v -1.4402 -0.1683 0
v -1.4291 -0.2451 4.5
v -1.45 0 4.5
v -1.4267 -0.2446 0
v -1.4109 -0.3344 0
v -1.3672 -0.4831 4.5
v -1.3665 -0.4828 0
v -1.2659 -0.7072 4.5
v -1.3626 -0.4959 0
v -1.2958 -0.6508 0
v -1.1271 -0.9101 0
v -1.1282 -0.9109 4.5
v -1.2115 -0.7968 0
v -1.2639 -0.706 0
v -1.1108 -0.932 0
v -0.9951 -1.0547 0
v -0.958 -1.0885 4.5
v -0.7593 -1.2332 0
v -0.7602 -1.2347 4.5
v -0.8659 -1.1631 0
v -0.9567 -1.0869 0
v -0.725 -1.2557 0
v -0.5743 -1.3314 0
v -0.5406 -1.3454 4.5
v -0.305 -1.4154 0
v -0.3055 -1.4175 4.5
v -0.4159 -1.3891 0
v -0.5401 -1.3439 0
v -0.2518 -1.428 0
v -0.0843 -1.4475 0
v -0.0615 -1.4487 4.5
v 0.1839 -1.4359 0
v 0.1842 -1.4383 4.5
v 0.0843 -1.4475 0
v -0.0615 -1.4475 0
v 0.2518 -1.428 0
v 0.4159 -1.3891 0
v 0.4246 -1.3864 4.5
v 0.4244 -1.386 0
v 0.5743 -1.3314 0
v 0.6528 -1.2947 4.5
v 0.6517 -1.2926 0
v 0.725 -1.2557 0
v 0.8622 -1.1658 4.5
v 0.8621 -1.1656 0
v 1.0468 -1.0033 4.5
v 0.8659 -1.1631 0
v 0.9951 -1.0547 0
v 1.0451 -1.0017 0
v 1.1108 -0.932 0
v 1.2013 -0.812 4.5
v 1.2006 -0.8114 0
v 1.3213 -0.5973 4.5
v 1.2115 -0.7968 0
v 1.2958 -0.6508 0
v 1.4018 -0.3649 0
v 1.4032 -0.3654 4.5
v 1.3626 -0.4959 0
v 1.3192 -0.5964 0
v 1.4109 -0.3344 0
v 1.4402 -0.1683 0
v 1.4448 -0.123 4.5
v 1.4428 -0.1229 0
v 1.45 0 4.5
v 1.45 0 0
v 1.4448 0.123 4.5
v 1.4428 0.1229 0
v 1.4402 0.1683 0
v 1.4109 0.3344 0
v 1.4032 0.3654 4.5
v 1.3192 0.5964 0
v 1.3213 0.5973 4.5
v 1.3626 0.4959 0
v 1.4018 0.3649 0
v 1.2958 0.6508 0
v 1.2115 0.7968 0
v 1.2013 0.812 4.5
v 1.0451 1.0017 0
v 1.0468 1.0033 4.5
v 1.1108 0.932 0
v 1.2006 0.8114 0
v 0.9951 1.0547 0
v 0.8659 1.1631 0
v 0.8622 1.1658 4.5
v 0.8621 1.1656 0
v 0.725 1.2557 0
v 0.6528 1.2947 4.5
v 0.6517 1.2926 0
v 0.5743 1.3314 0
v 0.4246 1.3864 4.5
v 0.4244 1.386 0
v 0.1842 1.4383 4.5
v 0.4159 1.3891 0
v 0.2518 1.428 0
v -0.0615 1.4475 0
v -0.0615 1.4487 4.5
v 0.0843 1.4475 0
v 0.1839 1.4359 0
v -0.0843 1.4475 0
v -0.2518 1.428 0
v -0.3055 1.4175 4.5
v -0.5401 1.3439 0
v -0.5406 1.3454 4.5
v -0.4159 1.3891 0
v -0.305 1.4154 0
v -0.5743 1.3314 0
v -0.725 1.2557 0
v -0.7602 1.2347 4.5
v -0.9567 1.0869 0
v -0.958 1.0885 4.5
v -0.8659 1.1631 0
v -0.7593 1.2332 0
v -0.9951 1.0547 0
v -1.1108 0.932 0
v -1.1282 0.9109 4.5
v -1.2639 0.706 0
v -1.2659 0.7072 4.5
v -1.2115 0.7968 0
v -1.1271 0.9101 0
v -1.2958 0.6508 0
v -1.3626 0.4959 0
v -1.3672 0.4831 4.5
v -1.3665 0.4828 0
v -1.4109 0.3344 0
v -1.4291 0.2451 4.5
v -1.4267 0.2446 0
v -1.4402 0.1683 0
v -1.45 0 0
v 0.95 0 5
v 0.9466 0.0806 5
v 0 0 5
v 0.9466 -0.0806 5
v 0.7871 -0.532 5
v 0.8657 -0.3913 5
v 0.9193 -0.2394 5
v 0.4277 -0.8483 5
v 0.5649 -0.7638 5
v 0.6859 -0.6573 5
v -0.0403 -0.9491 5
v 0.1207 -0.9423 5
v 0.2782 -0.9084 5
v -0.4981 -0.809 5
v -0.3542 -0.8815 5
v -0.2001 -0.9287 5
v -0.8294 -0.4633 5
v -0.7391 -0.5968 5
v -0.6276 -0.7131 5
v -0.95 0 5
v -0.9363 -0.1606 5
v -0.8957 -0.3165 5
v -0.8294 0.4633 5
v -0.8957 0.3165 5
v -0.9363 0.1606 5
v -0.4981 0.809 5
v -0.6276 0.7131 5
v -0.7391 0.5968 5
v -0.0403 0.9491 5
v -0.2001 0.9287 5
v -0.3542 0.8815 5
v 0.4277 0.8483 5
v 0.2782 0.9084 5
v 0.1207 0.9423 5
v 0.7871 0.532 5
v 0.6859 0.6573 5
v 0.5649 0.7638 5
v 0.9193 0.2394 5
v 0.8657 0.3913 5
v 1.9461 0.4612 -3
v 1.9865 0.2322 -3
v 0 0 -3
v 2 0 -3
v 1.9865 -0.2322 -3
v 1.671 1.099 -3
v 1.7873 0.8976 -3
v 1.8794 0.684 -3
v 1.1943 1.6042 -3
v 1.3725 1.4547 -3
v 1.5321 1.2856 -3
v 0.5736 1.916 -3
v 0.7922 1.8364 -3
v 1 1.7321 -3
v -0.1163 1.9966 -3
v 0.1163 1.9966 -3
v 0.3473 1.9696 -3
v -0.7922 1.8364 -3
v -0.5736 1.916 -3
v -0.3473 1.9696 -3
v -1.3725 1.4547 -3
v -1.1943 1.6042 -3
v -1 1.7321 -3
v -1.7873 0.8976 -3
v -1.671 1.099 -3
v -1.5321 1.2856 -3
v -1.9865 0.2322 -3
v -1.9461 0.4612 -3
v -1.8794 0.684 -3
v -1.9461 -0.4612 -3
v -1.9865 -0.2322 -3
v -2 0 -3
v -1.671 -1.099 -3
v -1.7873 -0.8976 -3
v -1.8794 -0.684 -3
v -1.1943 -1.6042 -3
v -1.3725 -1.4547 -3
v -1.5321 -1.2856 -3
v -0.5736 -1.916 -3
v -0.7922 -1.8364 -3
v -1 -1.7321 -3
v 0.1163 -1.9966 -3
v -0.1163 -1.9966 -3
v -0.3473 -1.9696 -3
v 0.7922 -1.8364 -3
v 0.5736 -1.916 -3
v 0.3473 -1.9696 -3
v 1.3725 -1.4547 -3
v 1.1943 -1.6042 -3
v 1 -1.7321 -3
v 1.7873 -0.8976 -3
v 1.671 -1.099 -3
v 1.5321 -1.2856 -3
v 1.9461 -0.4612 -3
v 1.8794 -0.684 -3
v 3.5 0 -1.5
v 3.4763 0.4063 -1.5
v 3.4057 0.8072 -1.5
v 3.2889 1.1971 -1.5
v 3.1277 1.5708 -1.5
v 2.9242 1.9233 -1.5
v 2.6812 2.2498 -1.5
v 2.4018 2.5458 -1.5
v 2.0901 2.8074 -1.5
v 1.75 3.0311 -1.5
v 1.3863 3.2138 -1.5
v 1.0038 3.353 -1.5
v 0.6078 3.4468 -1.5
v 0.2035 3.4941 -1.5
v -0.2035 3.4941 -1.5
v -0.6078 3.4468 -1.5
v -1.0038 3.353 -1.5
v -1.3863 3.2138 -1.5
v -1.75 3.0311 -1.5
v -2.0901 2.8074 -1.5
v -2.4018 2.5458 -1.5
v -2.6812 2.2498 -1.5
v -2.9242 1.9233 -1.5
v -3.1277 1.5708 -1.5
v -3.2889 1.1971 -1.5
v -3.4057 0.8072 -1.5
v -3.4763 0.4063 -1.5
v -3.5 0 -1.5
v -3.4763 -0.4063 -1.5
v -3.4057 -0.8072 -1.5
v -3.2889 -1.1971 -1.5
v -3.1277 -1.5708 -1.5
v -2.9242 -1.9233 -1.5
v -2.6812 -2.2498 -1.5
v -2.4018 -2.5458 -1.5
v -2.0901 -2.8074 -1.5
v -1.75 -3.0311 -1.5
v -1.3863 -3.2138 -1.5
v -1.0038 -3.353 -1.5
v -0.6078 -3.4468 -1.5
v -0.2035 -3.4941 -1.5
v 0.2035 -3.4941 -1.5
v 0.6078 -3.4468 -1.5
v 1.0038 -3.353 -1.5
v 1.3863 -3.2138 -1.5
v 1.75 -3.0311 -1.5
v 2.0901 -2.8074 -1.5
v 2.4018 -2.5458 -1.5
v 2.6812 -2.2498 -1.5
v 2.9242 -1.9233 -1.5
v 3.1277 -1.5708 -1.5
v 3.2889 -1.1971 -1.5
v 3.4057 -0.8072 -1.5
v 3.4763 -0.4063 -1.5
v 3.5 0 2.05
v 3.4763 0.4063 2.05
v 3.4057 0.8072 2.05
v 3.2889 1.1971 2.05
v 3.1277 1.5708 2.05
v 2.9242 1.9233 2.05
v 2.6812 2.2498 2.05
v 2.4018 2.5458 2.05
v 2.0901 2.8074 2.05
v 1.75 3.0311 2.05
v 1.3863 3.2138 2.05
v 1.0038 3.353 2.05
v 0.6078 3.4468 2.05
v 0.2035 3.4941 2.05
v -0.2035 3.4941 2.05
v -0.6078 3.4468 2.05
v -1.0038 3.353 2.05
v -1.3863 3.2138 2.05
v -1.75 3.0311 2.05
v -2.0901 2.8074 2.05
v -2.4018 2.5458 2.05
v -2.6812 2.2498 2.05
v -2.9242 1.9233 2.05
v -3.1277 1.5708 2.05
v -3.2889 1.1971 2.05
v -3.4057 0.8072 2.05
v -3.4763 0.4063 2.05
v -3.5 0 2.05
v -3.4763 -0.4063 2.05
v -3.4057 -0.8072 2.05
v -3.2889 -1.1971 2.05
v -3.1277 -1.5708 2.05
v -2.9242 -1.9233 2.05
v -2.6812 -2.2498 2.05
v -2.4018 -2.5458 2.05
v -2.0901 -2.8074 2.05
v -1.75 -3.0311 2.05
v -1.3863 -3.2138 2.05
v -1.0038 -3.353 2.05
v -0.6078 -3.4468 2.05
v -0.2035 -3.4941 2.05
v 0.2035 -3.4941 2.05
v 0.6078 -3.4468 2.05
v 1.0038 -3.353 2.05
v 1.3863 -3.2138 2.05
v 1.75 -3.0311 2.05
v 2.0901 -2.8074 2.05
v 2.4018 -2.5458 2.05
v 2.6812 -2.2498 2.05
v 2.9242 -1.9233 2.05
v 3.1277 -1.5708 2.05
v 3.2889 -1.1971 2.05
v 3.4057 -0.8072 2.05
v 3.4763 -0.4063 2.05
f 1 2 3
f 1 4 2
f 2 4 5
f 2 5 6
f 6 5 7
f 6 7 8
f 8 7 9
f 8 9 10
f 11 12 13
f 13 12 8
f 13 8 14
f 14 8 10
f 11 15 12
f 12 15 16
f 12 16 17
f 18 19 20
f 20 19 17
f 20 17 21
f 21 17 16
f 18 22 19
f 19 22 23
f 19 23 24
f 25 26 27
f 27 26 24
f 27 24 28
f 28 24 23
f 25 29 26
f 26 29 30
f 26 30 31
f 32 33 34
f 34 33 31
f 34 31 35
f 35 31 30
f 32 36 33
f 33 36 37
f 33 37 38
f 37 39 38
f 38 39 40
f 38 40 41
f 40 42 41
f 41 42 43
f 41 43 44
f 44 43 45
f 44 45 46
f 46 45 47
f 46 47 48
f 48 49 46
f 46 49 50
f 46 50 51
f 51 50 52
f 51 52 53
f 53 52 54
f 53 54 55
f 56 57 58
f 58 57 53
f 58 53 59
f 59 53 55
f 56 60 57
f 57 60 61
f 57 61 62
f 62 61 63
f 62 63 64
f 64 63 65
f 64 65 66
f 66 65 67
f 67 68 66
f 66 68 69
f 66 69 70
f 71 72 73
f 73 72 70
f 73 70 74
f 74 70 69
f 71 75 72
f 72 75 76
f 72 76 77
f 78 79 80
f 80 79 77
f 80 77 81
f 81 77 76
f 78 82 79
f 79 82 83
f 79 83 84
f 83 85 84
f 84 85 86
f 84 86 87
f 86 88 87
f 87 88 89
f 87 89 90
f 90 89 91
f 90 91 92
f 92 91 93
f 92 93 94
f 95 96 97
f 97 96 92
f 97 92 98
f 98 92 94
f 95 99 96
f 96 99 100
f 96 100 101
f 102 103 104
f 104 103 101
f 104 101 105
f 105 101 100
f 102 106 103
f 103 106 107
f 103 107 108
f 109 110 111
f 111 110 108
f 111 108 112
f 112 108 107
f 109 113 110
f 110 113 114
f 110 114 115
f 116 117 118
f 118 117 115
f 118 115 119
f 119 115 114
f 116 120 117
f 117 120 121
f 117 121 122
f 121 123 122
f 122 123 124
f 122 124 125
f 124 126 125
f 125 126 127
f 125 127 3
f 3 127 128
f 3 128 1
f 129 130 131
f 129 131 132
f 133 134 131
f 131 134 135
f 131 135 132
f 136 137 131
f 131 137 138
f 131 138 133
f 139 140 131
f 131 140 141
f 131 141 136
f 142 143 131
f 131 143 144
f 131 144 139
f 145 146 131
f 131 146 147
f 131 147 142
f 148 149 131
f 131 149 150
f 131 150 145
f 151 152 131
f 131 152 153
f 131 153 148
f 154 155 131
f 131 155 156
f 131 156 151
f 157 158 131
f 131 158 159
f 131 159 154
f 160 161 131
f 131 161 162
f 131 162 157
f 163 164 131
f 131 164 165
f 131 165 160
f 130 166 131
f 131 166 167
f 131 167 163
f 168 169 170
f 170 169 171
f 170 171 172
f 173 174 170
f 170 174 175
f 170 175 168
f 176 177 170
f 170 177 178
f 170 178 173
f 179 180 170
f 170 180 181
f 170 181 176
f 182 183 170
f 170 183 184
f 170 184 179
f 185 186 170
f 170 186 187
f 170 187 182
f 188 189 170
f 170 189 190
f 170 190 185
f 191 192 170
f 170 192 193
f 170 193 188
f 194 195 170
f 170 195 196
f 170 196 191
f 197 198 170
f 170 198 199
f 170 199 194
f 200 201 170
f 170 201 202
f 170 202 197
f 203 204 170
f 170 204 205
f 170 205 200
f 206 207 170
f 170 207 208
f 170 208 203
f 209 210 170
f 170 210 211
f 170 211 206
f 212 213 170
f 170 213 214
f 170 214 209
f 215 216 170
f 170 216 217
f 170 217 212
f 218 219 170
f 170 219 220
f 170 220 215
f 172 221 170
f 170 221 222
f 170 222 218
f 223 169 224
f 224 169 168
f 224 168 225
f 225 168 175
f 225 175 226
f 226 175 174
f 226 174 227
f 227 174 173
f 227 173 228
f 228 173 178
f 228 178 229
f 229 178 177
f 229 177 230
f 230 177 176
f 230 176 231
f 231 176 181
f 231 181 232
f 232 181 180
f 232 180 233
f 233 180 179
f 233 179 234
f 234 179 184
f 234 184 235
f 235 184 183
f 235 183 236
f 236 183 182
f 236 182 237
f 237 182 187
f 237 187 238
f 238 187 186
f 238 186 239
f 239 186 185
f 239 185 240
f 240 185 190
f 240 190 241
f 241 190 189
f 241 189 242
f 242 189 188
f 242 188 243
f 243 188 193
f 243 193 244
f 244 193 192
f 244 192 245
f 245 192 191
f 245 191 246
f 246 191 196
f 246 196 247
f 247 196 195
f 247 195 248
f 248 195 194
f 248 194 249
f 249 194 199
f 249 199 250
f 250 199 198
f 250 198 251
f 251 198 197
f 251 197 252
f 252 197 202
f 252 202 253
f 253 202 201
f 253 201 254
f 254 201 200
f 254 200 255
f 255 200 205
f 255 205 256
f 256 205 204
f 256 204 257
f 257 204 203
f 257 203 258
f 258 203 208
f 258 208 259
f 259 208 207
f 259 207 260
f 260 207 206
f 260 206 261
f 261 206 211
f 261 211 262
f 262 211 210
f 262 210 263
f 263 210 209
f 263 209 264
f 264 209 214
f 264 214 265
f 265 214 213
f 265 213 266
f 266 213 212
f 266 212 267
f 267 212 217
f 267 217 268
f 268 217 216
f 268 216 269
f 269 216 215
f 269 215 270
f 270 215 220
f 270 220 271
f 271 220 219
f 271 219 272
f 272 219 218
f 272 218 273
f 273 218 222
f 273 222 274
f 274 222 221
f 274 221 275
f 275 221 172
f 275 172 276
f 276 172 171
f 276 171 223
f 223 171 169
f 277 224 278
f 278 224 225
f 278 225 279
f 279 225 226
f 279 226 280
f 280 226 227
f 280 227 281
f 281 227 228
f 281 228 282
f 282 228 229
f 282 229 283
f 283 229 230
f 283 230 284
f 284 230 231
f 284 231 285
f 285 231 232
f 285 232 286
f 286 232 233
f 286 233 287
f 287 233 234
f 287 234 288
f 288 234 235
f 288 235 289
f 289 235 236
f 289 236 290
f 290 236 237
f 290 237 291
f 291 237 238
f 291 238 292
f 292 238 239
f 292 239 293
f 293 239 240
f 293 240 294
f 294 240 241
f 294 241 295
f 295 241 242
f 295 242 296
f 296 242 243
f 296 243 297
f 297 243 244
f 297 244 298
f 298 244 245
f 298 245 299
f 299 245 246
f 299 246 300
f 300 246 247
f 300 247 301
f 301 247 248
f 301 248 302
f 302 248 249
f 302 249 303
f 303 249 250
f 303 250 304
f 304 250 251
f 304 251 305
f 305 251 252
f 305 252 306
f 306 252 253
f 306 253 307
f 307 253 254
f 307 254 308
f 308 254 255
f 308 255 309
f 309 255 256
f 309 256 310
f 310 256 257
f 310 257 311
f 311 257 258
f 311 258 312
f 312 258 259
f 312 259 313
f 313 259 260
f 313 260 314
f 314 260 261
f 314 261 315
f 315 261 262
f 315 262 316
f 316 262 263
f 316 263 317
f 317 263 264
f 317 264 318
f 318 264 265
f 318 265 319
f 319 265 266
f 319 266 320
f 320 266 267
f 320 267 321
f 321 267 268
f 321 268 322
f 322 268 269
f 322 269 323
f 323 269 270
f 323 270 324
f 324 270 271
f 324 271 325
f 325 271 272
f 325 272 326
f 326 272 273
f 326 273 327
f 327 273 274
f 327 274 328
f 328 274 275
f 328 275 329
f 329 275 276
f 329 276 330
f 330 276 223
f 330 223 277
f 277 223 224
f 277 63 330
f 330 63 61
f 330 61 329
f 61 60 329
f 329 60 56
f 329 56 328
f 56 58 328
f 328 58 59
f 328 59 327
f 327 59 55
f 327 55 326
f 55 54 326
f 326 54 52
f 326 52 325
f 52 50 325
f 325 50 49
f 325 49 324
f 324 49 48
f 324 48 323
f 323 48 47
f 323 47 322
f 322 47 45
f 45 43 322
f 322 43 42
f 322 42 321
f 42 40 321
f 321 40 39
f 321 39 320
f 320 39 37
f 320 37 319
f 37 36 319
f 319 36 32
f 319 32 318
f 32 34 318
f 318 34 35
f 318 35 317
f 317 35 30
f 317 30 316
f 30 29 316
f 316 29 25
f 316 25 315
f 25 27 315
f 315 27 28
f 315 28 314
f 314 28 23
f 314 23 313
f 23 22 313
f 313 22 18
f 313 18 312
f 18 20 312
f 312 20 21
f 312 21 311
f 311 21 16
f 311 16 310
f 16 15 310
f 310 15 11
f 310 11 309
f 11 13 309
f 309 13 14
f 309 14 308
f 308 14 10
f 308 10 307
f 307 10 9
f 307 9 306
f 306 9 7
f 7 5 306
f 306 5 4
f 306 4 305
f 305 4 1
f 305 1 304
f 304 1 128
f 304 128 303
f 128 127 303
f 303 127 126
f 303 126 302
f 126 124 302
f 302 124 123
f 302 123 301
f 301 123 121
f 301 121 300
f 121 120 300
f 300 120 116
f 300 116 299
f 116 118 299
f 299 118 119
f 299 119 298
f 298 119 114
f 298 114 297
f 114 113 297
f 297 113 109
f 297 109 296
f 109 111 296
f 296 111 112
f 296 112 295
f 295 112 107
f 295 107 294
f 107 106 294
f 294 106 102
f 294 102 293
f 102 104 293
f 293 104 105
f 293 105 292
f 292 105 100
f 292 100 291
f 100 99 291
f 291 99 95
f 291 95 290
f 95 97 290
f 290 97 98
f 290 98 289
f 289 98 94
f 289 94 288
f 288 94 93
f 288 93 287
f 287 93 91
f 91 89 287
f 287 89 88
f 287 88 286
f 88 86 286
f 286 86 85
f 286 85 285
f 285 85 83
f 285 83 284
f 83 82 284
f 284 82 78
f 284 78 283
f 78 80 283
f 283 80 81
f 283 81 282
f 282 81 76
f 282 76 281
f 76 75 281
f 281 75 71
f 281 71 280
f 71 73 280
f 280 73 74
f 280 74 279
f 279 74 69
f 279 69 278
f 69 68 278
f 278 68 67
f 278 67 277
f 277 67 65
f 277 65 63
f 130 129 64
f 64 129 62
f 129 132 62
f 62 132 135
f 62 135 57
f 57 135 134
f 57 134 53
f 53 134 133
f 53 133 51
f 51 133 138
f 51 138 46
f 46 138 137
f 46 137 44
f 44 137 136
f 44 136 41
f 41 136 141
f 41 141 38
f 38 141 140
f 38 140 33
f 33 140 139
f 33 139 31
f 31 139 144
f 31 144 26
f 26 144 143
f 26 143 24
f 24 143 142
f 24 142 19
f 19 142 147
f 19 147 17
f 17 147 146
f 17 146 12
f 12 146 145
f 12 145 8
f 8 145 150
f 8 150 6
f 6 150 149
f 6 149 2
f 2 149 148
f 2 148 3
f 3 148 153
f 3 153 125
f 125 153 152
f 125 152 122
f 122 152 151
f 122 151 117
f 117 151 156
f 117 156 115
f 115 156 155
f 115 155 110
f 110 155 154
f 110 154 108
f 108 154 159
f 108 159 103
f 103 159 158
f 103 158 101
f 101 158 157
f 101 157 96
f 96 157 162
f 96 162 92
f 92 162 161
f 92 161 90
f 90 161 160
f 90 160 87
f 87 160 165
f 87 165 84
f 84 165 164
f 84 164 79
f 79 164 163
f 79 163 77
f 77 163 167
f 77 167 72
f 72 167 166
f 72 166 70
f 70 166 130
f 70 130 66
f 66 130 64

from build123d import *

# Parameters (mm, degrees)
SKETCH_1_R      = 1.45
EXTRUDE_1_DEPTH = 5
CHAMFER_1_SIZE  = 0.5


with BuildPart() as part:
    # 스케치1 → 보스-돌출1 (new body)
    with BuildSketch(Plane.XY):
        Circle(SKETCH_1_R)
    extrude(amount=EXTRUDE_1_DEPTH)

    # 스케치3 → 회전1 (revolve)
    with BuildSketch(Plane(origin=(0, 0, 0), x_dir=(0, 0, -1), z_dir=(1, 0, 0)), mode=Mode.PRIVATE) as revolve_1_sk:
        Polygon((0, 0), (3, 0), (3, -2), (1.5, -3.5), (-2.05, -3.5), (0, -1.45), align=None)
    revolve(revolve_1_sk.sketch.rotate(Axis((0, 0, 0), (0, 0, -1)), 270), axis=Axis((0, 0, 0), (0, 0, -1)))

    # 모따기1
    chamfer_1_edges = [part.edges().sort_by_distance(p)[0] for p in [
        (-1.45, 0, 5),
    ]]
    chamfer(chamfer_1_edges, length=CHAMFER_1_SIZE)


solid = part.part
